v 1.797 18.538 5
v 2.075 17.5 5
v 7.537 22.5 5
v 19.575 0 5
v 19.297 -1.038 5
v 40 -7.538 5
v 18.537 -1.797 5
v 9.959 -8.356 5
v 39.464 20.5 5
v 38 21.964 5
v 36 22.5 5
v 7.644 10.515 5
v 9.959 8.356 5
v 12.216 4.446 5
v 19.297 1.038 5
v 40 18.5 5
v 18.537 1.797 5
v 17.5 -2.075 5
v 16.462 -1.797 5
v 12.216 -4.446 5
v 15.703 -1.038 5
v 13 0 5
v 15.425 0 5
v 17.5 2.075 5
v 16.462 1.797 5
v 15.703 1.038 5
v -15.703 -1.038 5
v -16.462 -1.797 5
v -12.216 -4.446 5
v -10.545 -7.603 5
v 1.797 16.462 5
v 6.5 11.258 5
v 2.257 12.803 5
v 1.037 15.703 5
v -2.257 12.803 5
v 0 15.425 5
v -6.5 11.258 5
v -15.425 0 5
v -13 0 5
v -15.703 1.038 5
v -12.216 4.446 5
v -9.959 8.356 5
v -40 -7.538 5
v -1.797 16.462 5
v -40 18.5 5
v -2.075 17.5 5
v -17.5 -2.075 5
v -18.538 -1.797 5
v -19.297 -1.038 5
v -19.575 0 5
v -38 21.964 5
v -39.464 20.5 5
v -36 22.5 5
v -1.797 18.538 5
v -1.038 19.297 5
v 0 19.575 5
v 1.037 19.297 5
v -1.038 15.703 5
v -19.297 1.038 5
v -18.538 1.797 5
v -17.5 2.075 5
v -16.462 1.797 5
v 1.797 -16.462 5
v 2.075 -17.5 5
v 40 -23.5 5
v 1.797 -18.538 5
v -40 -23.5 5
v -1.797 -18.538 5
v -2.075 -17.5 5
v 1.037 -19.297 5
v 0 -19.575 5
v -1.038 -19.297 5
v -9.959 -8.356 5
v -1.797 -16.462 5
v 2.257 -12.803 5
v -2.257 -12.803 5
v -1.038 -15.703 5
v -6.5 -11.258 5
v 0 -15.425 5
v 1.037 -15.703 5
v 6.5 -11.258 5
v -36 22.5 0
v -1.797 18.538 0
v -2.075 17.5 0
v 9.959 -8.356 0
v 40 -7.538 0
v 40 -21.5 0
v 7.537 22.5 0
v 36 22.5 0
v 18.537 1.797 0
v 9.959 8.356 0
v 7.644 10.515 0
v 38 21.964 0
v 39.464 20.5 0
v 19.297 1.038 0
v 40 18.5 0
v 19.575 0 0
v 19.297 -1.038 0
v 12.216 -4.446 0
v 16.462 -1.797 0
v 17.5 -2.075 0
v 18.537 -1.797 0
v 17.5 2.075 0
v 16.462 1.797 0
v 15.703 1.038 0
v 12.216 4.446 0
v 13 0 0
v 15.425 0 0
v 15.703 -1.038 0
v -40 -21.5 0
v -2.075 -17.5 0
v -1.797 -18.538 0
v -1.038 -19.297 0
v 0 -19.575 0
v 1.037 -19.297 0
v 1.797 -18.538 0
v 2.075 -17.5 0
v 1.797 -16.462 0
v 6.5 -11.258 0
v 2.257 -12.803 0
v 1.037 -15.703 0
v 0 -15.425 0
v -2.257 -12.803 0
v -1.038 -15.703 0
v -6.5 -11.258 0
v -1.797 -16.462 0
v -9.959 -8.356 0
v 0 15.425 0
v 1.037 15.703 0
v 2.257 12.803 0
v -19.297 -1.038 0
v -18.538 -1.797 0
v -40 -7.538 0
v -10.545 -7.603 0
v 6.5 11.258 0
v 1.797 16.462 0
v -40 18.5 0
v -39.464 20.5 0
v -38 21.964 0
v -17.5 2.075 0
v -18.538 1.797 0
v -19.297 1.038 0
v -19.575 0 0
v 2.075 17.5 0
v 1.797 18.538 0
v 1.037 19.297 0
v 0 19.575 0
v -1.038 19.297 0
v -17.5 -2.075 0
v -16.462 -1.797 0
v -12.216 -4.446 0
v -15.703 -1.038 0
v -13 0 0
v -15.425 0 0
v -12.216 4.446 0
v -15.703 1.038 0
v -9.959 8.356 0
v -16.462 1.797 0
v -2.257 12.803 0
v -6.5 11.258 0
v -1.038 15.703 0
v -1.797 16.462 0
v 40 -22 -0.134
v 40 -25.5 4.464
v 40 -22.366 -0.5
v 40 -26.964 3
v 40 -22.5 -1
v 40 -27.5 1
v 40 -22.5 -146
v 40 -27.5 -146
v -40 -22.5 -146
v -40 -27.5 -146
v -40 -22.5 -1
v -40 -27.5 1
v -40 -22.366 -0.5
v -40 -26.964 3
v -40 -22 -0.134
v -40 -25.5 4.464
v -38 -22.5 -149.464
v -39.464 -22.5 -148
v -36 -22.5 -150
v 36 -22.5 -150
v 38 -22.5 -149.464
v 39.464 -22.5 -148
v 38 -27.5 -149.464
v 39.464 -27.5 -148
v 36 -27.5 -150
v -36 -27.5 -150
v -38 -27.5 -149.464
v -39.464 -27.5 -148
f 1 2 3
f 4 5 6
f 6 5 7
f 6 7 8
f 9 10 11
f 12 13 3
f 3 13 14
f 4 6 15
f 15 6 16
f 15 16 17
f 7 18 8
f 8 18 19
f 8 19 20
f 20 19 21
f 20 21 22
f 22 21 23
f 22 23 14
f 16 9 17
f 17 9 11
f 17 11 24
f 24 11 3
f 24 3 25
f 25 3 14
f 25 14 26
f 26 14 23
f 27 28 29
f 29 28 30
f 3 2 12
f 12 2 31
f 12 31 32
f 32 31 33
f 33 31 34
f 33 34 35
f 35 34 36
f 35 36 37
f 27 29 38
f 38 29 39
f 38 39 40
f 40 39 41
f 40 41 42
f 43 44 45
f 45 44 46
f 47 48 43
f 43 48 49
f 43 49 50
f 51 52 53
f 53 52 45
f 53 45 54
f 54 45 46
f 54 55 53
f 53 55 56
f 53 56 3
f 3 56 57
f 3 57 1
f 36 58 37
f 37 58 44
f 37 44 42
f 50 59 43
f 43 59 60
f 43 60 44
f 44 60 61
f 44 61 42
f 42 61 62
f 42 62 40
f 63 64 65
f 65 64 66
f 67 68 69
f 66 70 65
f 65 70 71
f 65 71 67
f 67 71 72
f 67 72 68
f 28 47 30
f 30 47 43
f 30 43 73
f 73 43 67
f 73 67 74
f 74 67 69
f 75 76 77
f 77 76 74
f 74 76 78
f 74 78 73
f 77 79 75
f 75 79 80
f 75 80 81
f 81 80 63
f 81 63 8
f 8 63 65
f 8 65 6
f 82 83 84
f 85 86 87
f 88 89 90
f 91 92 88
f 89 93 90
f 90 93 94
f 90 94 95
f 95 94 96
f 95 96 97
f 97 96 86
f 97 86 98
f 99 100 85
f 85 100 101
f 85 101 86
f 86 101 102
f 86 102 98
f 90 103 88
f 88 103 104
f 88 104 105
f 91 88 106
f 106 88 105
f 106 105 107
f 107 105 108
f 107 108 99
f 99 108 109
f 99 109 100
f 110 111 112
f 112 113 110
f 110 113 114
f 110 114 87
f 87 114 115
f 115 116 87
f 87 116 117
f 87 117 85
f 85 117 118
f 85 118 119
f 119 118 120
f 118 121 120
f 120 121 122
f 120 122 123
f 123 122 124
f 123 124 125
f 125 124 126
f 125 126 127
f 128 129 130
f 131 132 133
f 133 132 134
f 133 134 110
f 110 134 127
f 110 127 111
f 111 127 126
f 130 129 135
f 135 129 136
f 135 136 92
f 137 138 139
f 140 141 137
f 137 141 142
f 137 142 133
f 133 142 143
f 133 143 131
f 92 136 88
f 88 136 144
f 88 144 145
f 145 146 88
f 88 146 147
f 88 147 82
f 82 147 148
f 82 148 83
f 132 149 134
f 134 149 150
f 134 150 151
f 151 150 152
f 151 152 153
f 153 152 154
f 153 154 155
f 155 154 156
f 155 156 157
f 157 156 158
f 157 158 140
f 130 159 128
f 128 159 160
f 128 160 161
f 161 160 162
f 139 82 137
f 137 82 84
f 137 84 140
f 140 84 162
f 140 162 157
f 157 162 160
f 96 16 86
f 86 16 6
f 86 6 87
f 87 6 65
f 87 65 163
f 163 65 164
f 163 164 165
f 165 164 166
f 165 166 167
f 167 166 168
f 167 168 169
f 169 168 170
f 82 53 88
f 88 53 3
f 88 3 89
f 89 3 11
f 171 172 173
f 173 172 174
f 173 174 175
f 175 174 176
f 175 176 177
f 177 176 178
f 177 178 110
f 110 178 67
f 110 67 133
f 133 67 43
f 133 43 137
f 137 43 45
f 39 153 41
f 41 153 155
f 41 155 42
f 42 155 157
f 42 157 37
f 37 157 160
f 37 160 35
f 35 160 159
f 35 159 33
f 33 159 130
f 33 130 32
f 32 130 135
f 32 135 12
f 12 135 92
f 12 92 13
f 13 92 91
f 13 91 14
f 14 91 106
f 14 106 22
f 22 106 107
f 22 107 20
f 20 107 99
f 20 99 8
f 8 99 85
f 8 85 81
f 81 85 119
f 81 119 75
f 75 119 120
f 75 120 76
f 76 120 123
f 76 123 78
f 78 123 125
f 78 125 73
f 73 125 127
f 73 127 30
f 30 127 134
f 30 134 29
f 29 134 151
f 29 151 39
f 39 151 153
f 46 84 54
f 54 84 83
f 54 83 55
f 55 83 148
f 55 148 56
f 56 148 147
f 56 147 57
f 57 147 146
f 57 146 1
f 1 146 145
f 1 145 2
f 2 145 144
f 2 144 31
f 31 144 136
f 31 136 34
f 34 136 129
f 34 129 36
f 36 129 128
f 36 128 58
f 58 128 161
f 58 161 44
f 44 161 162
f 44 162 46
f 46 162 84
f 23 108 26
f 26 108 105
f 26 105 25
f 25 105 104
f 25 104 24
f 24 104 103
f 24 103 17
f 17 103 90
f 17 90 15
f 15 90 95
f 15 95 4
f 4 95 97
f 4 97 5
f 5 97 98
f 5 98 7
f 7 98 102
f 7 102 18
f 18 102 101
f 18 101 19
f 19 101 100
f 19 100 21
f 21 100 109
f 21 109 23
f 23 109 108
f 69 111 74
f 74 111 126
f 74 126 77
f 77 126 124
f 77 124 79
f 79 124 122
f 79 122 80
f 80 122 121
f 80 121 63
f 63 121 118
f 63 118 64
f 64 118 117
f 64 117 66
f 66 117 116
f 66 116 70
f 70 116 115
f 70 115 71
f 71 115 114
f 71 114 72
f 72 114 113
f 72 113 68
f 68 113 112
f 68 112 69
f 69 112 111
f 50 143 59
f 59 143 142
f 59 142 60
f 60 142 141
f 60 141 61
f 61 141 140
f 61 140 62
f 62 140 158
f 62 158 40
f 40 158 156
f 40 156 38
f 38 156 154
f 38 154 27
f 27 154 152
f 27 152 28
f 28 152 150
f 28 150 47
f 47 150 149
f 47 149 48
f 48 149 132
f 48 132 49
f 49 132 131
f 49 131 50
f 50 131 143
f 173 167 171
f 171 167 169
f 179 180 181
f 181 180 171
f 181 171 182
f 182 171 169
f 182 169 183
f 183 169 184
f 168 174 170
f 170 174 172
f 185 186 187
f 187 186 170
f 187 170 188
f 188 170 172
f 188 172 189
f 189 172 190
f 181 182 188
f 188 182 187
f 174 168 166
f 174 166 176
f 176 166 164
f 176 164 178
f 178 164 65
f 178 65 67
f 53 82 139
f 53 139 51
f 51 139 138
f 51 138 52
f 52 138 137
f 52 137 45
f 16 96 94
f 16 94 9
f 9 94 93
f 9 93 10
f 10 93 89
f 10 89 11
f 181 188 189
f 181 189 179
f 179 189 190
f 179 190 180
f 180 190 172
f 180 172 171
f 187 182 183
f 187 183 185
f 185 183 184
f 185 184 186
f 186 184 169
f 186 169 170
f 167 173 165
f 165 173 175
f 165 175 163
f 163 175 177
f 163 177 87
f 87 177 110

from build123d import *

# Parameters (mm, degrees)
SKETCH1_W                = 80
SKETCH1_H                = 45
SKETCH1_R                = 13
SKETCH1_R_2              = 2.075
BOSS_EXTRUDE1_DEPTH      = 5
BOSS_EXTRUDE2_DEPTH      = 150
BOSS_EXTRUDE2_DEPTH_BACK = 5
SKETCH2_W                = 80
SKETCH2_H                = 5
FILLET1_R                = 4
FILLET2_R                = 1


with BuildPart() as part:
    # Sketch1 → Boss-Extrude1 (new body)
    with BuildSketch(Plane.XY):
        Rectangle(SKETCH1_W, SKETCH1_H)
        Circle(SKETCH1_R, mode=Mode.SUBTRACT)
        with Locations((0, 17.5)):
            Circle(SKETCH1_R_2, mode=Mode.SUBTRACT)
        with Locations((17.5, 0)):
            Circle(SKETCH1_R_2, mode=Mode.SUBTRACT)
        with Locations((0, -17.5)):
            Circle(SKETCH1_R_2, mode=Mode.SUBTRACT)
        with Locations((-17.5, 0)):
            Circle(SKETCH1_R_2, mode=Mode.SUBTRACT)
    extrude(amount=BOSS_EXTRUDE1_DEPTH)

    # Sketch2 → Boss-Extrude2 (add, two sides: drawn at the far end of the back side and taken through both)
    with BuildSketch(Plane(origin=(0, 0, 0), x_dir=(-1, 0, 0), z_dir=(0, 0, -1)).offset(-BOSS_EXTRUDE2_DEPTH_BACK)):
        with Locations((0, -25)):
            Rectangle(SKETCH2_W, SKETCH2_H)
    extrude(amount=BOSS_EXTRUDE2_DEPTH + BOSS_EXTRUDE2_DEPTH_BACK)

    # Fillet1
    fillet1_edges = [part.edges().sort_by_distance(p)[0] for p in [
        (0, -27.5, 5),
        (40, -25, -150),
        (-40, -25, -150),
        (-40, 22.5, 2.5),
        (40, 22.5, 2.5),
    ]]
    fillet(fillet1_edges, radius=FILLET1_R)

    # Fillet2
    fillet2_edges = [part.edges().sort_by_distance(p)[0] for p in [
        (0, -22.5, 0),
    ]]
    fillet(fillet2_edges, radius=FILLET2_R)


solid = part.part
